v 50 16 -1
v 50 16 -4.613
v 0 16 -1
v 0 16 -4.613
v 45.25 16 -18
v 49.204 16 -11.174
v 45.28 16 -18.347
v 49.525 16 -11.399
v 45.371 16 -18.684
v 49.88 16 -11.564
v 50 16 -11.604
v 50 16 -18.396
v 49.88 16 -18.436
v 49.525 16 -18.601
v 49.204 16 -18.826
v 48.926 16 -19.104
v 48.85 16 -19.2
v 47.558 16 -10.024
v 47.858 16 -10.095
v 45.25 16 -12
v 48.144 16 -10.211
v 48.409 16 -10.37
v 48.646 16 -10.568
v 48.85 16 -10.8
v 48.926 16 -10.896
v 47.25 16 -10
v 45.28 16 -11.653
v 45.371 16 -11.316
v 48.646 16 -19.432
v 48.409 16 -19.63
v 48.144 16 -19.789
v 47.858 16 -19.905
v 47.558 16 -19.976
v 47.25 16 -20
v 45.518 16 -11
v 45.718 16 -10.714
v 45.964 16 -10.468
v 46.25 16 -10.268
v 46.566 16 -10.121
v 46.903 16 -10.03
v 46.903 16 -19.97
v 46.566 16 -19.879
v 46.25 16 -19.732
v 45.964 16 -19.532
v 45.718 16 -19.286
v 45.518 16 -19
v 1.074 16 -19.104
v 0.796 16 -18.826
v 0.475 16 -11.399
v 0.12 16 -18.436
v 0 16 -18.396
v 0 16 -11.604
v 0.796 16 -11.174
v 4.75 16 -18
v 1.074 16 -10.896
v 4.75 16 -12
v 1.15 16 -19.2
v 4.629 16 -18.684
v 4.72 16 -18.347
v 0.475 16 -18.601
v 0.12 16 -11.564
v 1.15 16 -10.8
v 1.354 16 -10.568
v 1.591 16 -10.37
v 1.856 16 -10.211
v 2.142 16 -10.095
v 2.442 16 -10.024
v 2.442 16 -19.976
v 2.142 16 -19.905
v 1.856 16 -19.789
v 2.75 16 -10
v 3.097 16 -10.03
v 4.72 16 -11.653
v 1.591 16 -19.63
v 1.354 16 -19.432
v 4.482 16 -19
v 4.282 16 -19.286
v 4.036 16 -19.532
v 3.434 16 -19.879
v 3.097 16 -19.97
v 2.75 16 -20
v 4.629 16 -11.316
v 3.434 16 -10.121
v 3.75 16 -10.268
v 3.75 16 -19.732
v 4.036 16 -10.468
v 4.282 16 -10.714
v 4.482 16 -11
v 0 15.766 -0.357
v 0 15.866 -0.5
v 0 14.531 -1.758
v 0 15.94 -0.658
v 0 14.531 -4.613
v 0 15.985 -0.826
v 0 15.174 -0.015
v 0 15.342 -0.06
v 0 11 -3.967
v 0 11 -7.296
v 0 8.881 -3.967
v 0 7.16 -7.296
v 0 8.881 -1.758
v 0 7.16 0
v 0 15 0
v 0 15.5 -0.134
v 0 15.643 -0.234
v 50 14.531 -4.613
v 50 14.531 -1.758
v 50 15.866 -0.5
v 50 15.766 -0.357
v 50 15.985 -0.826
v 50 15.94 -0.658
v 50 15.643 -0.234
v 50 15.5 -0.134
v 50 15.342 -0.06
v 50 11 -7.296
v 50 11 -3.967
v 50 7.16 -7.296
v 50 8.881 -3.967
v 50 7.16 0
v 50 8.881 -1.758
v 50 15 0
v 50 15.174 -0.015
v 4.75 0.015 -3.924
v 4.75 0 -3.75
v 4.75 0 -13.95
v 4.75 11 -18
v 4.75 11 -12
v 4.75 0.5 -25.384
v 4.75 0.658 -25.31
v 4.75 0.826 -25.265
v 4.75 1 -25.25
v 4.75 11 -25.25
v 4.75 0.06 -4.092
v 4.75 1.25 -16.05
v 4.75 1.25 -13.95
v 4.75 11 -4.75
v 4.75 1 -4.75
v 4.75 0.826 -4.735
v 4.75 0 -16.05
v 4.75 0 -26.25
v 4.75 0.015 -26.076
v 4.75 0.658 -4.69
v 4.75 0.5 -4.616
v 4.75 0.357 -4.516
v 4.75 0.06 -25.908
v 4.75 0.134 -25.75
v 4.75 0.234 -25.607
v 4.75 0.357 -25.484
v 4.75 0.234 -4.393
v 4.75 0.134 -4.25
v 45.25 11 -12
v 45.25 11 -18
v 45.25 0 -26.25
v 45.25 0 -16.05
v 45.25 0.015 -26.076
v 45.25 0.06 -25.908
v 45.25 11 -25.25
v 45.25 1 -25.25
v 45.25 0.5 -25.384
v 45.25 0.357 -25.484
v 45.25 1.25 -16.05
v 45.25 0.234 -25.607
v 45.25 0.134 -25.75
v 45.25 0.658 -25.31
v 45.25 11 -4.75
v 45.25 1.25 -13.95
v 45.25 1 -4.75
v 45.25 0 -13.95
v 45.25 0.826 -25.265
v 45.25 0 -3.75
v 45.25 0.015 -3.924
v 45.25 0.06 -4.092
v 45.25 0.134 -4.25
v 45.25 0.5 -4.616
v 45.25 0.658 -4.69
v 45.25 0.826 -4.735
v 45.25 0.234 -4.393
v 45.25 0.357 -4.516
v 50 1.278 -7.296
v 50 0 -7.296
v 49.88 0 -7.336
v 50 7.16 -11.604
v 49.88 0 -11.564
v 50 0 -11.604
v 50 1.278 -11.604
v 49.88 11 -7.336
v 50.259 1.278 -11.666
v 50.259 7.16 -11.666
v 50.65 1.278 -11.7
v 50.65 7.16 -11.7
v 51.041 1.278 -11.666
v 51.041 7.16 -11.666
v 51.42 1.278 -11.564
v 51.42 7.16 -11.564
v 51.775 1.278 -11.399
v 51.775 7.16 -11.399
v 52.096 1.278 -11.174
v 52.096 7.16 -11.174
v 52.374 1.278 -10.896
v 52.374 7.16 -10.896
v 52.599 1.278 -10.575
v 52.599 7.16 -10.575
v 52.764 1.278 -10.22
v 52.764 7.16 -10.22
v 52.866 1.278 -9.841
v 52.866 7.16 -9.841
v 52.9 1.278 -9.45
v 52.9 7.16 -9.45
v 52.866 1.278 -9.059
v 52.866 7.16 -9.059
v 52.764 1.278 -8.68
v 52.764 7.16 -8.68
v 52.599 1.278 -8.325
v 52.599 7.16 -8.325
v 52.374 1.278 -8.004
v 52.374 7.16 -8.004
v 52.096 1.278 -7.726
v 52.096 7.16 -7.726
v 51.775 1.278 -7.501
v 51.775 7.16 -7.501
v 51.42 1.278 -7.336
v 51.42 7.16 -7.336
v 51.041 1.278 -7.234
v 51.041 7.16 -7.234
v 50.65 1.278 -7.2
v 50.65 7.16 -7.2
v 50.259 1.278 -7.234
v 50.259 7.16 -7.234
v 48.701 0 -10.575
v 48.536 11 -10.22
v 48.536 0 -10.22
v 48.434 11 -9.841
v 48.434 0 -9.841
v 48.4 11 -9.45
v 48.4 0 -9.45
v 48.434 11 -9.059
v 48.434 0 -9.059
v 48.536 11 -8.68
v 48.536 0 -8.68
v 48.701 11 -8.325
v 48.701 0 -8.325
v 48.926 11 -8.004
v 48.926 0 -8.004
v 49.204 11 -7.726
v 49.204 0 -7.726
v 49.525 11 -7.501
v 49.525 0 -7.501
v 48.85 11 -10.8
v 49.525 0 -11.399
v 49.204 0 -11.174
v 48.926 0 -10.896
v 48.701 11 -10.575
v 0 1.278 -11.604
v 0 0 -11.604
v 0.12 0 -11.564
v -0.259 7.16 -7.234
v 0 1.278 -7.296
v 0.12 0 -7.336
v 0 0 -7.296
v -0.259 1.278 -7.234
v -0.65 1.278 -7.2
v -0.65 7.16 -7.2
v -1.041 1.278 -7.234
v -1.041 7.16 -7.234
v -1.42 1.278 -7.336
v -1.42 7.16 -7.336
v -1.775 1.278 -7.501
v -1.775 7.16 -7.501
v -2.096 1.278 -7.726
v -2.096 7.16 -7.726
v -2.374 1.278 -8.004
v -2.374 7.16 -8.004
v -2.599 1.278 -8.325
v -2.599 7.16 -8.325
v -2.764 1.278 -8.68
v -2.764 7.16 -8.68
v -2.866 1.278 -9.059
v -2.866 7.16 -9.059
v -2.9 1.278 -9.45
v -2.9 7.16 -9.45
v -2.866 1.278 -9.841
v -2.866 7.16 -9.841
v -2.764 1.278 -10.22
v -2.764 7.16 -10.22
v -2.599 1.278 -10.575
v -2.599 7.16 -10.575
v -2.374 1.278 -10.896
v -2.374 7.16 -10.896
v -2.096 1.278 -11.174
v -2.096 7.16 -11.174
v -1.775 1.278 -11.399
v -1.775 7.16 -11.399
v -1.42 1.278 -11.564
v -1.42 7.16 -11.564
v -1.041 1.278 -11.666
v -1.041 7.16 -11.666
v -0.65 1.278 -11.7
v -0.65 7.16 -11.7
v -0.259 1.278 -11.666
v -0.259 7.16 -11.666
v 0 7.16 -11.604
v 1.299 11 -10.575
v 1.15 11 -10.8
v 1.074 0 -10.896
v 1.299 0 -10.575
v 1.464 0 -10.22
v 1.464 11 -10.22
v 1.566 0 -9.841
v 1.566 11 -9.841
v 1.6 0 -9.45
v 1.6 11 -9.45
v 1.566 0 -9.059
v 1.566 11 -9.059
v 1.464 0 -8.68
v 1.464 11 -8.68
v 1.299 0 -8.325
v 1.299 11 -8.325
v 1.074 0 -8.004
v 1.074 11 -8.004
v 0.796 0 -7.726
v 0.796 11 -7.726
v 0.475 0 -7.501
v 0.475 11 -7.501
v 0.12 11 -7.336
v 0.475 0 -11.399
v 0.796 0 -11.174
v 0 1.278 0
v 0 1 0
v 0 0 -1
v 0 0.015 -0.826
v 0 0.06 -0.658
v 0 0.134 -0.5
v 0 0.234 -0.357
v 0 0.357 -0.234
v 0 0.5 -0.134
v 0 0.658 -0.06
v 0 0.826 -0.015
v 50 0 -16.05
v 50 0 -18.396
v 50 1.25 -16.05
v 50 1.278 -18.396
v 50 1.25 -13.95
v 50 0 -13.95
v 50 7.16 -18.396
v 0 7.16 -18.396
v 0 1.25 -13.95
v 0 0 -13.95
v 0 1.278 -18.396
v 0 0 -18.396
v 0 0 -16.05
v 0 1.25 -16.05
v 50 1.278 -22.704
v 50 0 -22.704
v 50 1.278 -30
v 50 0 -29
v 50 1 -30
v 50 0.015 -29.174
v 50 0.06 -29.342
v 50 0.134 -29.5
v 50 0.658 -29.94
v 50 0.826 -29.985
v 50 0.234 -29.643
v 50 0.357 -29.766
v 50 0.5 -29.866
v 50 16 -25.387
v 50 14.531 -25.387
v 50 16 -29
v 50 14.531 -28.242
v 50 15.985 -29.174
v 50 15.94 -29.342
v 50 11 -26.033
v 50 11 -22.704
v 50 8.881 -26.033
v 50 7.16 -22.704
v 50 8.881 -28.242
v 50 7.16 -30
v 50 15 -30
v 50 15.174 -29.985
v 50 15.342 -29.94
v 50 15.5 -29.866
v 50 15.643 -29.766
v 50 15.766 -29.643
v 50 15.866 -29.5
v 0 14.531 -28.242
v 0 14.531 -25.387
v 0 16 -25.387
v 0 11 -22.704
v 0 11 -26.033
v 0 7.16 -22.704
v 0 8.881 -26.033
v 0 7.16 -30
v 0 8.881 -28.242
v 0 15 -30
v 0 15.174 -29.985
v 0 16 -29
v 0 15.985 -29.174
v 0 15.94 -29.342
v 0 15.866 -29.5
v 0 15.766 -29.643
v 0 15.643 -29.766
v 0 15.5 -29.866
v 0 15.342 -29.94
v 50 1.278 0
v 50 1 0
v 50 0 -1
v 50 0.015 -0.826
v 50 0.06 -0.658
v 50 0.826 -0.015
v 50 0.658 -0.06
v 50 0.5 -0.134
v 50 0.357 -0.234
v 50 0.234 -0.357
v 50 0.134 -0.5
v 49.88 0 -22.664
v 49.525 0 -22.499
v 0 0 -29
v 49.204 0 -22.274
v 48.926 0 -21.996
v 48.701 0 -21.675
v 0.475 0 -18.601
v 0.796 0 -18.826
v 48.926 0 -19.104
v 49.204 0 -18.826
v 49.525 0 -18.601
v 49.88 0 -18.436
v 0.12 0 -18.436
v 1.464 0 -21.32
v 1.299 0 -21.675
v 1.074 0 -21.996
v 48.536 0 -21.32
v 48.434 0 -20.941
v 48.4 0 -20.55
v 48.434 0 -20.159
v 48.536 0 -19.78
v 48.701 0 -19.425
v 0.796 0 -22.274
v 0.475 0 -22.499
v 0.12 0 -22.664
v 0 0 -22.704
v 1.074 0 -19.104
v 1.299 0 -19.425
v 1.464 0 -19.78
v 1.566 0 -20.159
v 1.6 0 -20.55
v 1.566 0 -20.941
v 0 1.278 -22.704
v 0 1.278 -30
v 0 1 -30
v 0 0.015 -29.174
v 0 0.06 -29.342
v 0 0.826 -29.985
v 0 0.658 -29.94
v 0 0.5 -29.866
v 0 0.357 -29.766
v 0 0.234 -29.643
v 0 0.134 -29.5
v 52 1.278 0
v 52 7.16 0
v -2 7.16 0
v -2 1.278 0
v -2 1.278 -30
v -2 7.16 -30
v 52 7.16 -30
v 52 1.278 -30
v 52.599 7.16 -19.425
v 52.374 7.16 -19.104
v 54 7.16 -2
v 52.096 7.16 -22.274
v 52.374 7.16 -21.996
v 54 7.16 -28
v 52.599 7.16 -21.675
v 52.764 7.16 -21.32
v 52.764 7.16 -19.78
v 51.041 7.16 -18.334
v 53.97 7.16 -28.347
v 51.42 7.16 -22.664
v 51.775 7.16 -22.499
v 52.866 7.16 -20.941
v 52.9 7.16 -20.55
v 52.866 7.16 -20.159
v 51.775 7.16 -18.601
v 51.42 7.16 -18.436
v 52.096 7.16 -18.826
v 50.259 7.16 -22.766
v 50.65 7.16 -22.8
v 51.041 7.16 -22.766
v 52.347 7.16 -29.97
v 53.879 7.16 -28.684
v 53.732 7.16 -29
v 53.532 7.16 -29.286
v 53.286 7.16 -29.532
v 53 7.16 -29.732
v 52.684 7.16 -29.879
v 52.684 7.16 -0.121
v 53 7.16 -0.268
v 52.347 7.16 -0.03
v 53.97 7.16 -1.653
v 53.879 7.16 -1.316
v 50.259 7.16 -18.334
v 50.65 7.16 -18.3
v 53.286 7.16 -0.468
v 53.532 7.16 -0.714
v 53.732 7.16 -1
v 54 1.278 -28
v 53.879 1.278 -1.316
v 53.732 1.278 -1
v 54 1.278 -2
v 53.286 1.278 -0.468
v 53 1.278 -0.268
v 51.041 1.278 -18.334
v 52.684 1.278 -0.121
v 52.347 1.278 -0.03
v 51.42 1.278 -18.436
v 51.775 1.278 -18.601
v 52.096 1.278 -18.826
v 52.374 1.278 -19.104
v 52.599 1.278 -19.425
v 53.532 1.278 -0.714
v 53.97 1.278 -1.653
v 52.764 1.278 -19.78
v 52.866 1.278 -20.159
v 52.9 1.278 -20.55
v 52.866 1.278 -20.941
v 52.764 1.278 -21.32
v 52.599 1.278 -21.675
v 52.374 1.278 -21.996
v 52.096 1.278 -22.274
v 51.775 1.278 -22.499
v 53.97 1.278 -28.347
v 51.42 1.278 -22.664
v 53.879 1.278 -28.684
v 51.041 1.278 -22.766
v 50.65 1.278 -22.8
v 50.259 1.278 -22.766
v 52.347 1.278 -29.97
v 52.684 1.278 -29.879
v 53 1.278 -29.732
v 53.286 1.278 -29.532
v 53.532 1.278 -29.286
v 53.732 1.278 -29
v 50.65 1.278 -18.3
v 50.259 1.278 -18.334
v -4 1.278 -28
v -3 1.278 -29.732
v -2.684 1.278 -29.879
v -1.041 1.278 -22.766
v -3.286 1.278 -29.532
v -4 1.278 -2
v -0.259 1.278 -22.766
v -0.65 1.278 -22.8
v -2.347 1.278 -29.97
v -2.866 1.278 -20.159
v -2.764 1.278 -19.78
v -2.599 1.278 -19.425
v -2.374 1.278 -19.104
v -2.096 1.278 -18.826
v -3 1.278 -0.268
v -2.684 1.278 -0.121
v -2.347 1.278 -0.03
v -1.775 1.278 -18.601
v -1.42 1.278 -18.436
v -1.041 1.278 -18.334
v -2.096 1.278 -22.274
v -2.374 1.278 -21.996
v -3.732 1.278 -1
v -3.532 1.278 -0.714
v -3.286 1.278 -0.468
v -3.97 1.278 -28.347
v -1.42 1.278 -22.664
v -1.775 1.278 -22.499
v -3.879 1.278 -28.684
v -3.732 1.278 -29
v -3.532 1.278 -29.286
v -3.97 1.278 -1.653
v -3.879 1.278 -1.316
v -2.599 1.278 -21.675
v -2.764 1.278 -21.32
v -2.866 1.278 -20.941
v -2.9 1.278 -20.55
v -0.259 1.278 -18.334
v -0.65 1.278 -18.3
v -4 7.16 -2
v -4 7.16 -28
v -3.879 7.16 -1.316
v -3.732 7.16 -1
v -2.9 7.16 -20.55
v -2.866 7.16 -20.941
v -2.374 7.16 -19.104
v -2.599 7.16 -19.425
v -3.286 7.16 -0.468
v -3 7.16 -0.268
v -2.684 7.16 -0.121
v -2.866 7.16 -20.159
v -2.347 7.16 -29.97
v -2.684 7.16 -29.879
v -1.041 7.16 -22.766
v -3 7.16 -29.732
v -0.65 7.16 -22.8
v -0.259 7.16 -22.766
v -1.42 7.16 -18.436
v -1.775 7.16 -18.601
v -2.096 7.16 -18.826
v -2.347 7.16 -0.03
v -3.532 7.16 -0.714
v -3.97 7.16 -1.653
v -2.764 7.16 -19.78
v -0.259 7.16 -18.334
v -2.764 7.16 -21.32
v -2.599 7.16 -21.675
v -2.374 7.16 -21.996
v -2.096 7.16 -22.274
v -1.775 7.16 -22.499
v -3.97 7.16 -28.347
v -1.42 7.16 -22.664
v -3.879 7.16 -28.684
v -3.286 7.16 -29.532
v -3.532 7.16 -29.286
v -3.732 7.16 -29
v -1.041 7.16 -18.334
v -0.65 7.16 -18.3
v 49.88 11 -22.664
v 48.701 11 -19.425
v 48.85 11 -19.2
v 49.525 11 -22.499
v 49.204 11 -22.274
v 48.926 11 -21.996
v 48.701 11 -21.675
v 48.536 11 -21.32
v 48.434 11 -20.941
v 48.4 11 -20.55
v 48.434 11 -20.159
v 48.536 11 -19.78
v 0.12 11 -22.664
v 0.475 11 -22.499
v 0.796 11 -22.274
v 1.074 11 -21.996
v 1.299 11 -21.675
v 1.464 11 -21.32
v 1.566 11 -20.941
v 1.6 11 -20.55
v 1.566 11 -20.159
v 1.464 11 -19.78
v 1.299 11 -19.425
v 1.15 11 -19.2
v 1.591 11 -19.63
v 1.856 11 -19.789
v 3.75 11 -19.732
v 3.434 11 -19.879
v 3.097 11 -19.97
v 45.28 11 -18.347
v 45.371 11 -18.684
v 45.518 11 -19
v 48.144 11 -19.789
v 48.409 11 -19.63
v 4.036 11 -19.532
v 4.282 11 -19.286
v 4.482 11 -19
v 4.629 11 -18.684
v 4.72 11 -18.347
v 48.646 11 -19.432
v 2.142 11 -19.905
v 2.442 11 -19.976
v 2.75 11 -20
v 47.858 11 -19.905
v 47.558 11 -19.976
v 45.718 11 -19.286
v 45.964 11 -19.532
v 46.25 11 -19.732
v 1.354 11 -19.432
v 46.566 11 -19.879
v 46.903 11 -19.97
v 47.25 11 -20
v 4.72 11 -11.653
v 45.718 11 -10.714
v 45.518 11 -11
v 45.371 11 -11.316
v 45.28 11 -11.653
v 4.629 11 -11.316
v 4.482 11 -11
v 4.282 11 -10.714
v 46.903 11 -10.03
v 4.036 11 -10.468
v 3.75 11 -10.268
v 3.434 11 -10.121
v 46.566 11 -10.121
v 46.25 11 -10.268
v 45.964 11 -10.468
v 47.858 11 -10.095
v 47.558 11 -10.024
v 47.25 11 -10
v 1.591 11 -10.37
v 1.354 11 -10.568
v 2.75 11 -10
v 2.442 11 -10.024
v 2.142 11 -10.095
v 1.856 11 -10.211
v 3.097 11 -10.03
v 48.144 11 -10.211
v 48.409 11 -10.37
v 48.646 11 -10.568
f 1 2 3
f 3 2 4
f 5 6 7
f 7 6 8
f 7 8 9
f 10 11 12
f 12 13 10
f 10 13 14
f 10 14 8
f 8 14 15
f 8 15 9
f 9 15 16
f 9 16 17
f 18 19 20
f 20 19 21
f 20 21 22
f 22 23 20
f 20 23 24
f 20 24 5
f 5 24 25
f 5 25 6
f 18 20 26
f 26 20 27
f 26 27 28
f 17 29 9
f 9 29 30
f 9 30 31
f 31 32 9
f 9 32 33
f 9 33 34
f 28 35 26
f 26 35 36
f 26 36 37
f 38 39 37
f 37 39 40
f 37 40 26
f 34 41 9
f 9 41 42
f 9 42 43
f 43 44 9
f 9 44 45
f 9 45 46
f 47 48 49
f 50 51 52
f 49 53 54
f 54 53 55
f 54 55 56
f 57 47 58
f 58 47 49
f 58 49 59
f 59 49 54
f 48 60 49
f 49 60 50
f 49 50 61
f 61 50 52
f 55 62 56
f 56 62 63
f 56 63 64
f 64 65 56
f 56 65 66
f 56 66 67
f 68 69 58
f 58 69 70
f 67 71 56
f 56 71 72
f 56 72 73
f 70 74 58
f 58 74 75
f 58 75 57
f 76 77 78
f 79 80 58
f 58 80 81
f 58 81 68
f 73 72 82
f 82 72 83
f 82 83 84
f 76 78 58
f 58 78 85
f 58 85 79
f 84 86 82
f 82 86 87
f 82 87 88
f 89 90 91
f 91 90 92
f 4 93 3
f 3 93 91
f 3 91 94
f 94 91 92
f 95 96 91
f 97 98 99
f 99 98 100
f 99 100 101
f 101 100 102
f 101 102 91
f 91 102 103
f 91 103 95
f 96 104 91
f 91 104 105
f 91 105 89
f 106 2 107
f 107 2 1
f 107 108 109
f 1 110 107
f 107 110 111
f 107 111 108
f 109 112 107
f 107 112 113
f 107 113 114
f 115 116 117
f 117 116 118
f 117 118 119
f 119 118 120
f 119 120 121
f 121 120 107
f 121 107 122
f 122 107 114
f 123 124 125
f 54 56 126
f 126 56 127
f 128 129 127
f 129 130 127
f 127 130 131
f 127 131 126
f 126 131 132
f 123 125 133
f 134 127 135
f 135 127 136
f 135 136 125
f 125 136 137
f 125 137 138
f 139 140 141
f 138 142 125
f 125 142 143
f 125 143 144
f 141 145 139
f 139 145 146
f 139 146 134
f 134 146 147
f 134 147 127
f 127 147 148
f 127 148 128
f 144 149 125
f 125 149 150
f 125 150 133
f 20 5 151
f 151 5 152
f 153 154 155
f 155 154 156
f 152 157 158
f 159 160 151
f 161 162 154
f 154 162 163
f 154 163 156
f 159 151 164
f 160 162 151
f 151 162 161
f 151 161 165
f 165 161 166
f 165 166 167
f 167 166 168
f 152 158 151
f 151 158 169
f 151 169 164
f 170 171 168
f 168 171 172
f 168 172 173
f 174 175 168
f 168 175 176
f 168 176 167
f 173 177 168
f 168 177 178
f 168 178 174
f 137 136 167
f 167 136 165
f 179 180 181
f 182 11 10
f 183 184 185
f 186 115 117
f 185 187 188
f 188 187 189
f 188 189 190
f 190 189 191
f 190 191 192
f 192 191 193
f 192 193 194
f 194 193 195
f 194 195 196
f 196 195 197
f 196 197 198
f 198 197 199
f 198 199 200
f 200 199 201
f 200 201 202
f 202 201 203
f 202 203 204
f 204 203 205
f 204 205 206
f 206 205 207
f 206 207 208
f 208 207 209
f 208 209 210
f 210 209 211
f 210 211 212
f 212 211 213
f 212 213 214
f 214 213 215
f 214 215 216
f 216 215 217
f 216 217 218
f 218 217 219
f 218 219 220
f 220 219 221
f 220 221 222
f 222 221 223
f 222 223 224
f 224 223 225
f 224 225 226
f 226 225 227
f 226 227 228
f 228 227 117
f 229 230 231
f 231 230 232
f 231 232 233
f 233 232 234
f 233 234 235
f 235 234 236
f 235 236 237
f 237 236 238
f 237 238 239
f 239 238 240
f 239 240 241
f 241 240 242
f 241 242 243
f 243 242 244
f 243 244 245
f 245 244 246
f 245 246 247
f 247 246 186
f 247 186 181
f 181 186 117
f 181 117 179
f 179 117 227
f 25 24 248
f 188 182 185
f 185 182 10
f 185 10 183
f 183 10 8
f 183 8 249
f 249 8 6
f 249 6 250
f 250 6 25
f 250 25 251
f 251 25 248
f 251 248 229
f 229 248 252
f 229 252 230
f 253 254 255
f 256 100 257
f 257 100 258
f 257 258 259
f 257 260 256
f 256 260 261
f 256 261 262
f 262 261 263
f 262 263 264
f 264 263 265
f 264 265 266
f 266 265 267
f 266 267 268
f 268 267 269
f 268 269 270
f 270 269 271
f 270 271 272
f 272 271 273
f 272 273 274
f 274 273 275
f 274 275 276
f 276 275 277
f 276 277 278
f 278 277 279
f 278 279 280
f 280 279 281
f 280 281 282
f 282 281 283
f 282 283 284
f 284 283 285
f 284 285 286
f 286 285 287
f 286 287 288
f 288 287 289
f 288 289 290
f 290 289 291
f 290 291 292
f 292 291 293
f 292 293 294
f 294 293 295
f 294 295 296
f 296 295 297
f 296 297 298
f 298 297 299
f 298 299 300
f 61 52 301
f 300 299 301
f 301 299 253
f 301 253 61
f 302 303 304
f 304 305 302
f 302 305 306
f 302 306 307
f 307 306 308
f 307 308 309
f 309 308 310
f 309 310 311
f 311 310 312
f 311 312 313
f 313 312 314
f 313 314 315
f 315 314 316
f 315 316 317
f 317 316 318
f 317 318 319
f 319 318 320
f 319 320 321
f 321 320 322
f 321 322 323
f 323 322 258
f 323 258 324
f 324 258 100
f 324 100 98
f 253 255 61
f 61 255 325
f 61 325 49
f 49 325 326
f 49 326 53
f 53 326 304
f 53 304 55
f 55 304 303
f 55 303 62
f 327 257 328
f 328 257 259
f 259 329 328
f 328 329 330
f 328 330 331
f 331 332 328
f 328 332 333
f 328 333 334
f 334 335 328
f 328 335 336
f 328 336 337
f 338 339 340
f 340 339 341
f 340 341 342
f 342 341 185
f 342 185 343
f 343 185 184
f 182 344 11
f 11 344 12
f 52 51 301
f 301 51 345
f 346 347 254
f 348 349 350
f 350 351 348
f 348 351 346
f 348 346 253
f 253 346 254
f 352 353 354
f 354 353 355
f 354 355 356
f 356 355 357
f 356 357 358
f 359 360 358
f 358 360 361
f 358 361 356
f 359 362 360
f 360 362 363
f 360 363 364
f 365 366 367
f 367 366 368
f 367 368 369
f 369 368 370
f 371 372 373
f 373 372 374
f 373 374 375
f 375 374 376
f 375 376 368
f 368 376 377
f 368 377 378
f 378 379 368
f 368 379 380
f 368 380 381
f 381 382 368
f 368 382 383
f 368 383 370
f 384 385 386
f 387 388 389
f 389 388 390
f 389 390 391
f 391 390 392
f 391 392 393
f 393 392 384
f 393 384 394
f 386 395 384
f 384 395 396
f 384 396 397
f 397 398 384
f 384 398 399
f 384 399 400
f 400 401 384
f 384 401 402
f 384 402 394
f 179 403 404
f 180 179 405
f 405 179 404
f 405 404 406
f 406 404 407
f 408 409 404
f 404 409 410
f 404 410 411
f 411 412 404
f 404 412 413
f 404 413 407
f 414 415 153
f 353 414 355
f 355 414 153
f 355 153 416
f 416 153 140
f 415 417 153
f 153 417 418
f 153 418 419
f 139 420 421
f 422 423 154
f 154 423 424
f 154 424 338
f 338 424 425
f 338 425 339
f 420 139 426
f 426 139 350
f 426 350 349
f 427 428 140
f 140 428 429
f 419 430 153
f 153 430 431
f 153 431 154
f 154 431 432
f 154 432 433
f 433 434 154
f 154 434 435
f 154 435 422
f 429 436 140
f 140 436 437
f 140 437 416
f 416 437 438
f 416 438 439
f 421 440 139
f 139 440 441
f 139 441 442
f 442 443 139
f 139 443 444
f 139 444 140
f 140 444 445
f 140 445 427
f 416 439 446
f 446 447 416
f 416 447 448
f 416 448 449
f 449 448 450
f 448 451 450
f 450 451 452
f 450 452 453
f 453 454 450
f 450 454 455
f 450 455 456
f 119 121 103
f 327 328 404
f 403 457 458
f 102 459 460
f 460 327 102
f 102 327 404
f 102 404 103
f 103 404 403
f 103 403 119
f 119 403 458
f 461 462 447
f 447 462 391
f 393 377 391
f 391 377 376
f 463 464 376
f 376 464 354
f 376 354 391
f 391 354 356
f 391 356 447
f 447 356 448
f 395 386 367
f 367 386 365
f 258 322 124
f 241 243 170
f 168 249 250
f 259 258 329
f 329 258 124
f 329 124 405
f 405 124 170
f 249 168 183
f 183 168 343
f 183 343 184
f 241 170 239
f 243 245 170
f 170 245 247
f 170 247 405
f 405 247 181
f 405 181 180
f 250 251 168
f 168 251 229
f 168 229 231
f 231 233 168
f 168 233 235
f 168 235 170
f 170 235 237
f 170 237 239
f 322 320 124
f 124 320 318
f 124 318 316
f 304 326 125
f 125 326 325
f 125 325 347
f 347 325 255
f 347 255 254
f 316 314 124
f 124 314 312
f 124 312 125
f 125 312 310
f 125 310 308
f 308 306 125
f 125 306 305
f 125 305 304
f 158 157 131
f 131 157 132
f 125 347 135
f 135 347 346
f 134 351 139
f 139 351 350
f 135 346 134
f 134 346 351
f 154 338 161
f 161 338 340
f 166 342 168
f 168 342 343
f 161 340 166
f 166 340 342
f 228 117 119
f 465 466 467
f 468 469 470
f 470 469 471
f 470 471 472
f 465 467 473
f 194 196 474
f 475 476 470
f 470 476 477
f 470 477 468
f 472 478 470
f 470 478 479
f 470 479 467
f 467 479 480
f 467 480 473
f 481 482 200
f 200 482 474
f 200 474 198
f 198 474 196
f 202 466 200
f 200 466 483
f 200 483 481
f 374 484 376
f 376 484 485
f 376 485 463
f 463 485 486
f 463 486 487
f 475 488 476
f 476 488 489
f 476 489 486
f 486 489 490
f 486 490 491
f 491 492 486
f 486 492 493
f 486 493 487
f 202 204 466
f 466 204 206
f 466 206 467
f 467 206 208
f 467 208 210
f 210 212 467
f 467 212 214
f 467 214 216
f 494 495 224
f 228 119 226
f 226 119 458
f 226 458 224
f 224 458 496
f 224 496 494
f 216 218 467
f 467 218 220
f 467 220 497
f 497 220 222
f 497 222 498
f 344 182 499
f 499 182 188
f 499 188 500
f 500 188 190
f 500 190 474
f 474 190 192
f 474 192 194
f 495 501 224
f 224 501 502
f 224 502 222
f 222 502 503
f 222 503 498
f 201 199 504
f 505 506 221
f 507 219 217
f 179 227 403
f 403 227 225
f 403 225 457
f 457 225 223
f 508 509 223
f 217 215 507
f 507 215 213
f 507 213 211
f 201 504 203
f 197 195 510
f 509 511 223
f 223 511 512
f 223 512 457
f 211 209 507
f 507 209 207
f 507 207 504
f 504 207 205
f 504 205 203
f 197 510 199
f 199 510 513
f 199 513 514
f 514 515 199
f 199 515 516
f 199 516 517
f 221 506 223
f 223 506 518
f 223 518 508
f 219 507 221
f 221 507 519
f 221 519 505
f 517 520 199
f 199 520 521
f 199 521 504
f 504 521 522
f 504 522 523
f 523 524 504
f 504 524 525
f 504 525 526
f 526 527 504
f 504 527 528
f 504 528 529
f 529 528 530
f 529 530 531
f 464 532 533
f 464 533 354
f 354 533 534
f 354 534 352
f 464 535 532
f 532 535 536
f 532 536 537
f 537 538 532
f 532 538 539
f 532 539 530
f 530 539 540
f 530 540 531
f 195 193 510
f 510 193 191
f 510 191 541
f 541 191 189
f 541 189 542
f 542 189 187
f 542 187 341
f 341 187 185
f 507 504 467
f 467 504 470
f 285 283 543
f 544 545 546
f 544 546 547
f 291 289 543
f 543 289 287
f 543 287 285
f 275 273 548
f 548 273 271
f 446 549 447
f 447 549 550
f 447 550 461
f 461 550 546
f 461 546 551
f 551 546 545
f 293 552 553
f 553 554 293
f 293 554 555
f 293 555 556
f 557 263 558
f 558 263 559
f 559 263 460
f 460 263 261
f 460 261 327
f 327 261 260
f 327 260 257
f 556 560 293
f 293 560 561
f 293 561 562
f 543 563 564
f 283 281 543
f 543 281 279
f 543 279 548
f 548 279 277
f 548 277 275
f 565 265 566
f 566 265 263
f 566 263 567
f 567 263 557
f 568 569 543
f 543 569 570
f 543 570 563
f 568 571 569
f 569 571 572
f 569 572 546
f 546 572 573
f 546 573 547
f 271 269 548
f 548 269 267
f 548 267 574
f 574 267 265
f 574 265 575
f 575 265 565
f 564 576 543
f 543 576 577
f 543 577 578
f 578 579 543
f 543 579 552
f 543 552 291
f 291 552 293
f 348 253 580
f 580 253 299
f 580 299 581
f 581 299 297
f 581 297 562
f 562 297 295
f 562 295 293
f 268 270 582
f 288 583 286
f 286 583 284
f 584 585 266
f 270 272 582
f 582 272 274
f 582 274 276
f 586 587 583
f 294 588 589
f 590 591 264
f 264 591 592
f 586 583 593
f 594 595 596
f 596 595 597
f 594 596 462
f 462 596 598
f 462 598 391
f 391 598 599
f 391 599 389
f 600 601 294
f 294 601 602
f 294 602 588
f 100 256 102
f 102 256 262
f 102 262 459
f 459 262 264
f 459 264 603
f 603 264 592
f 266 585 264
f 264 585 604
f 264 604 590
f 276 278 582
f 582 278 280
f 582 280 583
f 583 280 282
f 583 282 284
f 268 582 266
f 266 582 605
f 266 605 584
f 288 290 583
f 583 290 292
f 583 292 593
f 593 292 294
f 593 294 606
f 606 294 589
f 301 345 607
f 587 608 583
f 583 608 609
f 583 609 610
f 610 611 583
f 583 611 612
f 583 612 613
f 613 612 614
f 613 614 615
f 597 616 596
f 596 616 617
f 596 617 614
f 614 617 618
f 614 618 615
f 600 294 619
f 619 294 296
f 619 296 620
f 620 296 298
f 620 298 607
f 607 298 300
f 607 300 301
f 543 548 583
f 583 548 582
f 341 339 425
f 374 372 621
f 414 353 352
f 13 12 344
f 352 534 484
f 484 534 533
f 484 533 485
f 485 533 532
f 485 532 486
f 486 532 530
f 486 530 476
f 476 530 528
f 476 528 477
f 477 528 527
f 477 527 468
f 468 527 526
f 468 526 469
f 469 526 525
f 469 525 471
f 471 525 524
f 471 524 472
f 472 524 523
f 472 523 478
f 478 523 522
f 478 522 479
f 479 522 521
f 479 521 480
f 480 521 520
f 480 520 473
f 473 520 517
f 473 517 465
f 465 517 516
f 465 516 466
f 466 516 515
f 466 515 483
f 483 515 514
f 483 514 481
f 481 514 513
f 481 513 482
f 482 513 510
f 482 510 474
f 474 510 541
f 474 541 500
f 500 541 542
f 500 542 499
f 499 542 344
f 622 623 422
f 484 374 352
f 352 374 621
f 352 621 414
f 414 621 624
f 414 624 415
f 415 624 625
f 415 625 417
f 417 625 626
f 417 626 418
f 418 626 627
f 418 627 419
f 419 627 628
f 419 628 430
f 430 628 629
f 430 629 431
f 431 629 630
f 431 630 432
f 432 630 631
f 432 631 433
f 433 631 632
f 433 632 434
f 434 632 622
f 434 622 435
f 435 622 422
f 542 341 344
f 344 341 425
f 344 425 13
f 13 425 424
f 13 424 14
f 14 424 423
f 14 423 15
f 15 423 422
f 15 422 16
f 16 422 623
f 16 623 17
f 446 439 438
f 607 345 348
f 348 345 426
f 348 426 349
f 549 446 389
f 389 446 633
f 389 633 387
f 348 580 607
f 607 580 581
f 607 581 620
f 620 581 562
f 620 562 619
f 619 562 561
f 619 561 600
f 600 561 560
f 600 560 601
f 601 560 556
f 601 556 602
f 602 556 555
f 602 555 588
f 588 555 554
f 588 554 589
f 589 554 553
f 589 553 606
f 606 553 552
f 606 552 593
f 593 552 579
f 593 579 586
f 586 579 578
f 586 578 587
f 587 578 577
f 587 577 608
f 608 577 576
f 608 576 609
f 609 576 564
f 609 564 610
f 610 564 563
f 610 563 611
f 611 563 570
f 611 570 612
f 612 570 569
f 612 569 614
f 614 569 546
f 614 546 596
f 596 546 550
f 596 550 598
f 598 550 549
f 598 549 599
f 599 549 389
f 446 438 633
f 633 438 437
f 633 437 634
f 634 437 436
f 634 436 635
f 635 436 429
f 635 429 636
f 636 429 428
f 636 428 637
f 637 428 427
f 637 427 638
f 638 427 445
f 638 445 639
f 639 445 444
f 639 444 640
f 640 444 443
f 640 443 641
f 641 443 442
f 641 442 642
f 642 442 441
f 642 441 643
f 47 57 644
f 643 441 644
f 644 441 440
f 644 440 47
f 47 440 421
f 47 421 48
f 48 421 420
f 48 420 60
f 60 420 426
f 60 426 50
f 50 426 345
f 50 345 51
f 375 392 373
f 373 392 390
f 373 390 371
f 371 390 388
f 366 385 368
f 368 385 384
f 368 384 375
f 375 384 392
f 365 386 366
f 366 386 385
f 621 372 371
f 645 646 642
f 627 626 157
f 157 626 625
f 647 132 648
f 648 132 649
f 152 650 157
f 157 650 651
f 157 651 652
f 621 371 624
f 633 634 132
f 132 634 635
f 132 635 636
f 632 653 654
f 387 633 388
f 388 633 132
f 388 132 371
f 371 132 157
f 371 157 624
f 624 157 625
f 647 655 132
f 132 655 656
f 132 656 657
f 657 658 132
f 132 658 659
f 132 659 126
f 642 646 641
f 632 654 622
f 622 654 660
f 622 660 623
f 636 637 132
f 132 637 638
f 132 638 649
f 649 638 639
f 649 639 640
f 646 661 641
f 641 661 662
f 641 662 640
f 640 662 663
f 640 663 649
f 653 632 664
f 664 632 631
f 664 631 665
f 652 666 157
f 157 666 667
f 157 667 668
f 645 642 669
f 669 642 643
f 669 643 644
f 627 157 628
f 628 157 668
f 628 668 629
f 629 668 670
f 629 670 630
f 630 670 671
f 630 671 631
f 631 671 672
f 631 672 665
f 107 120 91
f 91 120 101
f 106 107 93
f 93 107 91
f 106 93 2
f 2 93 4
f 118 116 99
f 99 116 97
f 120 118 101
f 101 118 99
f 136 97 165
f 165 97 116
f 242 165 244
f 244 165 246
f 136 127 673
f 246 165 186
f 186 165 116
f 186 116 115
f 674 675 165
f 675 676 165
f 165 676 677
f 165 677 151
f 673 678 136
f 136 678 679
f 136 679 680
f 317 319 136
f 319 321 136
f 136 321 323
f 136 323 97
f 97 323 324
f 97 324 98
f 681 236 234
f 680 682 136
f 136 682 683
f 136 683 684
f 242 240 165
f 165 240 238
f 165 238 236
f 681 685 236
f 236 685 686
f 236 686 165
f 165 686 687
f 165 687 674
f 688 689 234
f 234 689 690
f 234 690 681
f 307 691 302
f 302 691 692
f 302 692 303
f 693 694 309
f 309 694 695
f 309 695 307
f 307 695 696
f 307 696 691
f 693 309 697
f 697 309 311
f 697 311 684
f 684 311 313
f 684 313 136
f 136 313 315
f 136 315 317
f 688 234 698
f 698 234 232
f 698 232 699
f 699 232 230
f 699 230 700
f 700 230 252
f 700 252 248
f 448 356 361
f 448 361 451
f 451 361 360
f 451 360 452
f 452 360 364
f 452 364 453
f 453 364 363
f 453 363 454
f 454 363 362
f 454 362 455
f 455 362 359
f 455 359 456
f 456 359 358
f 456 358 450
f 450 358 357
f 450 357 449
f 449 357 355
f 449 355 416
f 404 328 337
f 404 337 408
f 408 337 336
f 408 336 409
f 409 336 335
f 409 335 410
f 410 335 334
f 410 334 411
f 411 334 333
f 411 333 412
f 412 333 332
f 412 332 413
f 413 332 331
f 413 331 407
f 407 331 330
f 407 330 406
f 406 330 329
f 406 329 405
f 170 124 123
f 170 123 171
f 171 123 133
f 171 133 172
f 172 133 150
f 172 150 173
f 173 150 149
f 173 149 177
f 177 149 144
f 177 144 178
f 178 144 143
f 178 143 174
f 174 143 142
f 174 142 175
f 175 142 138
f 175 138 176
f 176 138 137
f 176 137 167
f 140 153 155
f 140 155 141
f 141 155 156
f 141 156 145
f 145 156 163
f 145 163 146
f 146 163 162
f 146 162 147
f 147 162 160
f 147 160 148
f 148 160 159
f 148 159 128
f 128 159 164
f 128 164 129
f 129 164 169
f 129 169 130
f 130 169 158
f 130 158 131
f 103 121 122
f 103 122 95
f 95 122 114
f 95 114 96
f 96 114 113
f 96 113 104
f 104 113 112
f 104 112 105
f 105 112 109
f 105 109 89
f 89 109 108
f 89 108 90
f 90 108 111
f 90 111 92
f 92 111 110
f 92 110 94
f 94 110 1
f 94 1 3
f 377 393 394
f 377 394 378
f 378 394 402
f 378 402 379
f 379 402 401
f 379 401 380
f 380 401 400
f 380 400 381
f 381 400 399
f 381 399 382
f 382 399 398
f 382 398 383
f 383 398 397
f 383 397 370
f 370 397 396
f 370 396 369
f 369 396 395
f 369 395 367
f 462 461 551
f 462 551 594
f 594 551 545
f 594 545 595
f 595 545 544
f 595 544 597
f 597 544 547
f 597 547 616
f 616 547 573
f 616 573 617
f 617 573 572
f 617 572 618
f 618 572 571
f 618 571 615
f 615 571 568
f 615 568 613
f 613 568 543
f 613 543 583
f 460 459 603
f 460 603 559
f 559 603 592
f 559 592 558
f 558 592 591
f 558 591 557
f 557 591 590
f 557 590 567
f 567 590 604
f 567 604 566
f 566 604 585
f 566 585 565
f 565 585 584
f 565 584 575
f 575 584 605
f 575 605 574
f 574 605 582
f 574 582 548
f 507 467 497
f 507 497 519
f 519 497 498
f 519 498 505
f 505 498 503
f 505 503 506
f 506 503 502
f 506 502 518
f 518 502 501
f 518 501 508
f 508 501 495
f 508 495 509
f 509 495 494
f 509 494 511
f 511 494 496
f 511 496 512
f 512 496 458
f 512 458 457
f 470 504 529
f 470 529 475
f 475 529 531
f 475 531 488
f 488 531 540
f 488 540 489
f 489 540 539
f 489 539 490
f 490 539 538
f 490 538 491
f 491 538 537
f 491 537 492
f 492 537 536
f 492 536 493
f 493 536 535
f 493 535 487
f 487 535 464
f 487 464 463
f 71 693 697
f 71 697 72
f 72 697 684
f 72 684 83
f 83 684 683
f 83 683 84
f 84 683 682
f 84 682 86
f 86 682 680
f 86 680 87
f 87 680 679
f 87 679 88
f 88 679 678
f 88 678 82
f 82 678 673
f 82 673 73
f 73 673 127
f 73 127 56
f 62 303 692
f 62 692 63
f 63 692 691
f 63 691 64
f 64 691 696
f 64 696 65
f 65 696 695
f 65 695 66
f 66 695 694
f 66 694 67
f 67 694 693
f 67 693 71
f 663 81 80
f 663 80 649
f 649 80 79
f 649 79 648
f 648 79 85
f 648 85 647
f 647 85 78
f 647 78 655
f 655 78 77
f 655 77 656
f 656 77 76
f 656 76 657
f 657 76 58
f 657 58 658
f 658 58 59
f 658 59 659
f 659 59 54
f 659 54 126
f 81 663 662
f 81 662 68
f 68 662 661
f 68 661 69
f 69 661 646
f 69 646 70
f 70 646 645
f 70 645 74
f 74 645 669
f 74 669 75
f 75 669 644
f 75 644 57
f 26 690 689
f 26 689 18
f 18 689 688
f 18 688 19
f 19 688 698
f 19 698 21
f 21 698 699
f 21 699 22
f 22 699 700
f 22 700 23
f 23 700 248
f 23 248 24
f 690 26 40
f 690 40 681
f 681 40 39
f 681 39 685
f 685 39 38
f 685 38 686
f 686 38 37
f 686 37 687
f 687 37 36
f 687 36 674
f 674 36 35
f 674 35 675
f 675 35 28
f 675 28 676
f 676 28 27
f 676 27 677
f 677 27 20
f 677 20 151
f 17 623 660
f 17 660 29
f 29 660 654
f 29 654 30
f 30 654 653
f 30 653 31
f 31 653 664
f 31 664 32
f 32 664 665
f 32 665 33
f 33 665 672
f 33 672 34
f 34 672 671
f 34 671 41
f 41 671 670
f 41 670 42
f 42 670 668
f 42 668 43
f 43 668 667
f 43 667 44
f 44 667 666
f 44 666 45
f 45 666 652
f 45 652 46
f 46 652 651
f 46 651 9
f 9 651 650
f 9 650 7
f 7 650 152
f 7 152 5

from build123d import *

# Parameters (mm, degrees)
SKETCH1_W           = 50
SKETCH1_H           = 30
BOSS_EXTRUDE1_DEPTH = 16
SKETCH2_W           = 40.5
SKETCH2_H           = 20.5
CUT_EXTRUDE1_DEPTH  = 61.464865831
SKETCH3_W           = 5.361453717
SKETCH3_H           = 2.1
SKETCH3_W_2         = 6
CUT_EXTRUDE2_DEPTH  = 1.25
SKETCH5_W           = 30
SKETCH5_H           = 5.881320982
BOSS_EXTRUDE2_DEPTH = 4
SKETCH4_R           = 2.25
CUT_EXTRUDE3_DEPTH  = 64.812224534
CUT_EXTRUDE4_DEPTH  = 64.812224534
FILLET1_R           = 1
FILLET2_R           = 2
FILLET3_R           = 2


with BuildPart() as part:
    # Sketch1 → Boss-Extrude1 (new body)
    with BuildSketch(Plane(origin=(0, 0, 0), x_dir=(1, 0, 0), z_dir=(0, 1, 0))):
        with Locations((25, 15)):
            Rectangle(SKETCH1_W, SKETCH1_H)
    extrude(amount=BOSS_EXTRUDE1_DEPTH)

    # Sketch2 → Cut-Extrude1 (cut, through all)
    with BuildSketch(Plane(origin=(0, 16, 0), x_dir=(1, 0, 0), z_dir=(0, 1, 0))):
        with Locations((25, 15)):
            Rectangle(SKETCH2_W, SKETCH2_H)
    extrude(amount=-CUT_EXTRUDE1_DEPTH, mode=Mode.SUBTRACT)

    # Sketch3 → Cut-Extrude2 (cut)
    with BuildSketch(Plane.XZ):
        with Locations((2.069273142, -15)):
            Rectangle(SKETCH3_W, SKETCH3_H)
        with Locations((47.362234217, -15)):
            Rectangle(SKETCH3_W_2, SKETCH3_H)
    extrude(amount=-CUT_EXTRUDE2_DEPTH, mode=Mode.SUBTRACT)

    # Sketch5 → Boss-Extrude2 (add)
    with BuildSketch(Plane(origin=(50, 0, 0), x_dir=(0, 0, -1), z_dir=(1, 0, 0))):
        with Locations((15, 4.219150797)):
            Rectangle(SKETCH5_W, SKETCH5_H)
    boss_extrude2 = extrude(amount=BOSS_EXTRUDE2_DEPTH)

    # Mirror1: Boss-Extrude2 across plane
    add(boss_extrude2.mirror(Plane(origin=(25, 0, 0), x_dir=(0, 0, 1), z_dir=(1, 0, 0))))

    # Sketch4 → Cut-Extrude3 (cut, through all)
    with BuildSketch(Plane.XZ):
        with Locations(Location((50.65, -20.55, 0), (0, 0, 253.208552885))):
            Circle(SKETCH4_R)
        with Locations(Location((-0.65, -20.55, 0), (0, 0, 286.791447115))):
            Circle(SKETCH4_R)
        with Locations(Location((50.65, -9.45, 0), (0, 0, 253.208552885))):
            Circle(SKETCH4_R)
        with Locations(Location((-0.65, -9.45, 0), (0, 0, 286.791447115))):
            Circle(SKETCH4_R)
    extrude(amount=-CUT_EXTRUDE3_DEPTH, mode=Mode.SUBTRACT)

    # Sketch7 → Cut-Extrude4 (cut, through all)
    with BuildSketch(Plane(origin=(50, 0, 0), x_dir=(0, 0, -1), z_dir=(1, 0, 0))):
        Polygon((26.03322218, 11), (20, 11), (20, 19.253471802), (25.386984847, 19.253471802), (25.386984847, 14.530939497), (28.241616166, 14.530939497), (28.241616166, 11), (28.241616166, 8.880902809), (26.03322218, 8.880902809), align=None)
    cut_extrude4 = extrude(amount=-CUT_EXTRUDE4_DEPTH, mode=Mode.SUBTRACT)

    # Mirror2: Cut-Extrude4 across plane
    add(cut_extrude4.mirror(Plane(origin=(0, 0, -15), x_dir=(1, 0, 0), z_dir=(0, 0, -1))), mode=Mode.SUBTRACT)

    # Fillet1
    fillet1_edges = [part.edges().sort_by_distance(p)[0] for p in [
        (25, 0, -30),
        (25, 0, 0),
        (25, 0, -4.75),
        (25, 0, -25.25),
        (25, 16, 0),
        (25, 16, -30),
    ]]
    fillet(fillet1_edges, radius=FILLET1_R)

    # Fillet2
    fillet2_edges = [part.edges().sort_by_distance(p)[0] for p in [
        (-4, 4.219150797, -30),
        (-4, 4.219150797, 0),
        (54, 4.219150797, 0),
        (54, 4.219150797, -30),
    ]]
    fillet(fillet2_edges, radius=FILLET2_R)

    # Fillet3
    fillet3_edges = [part.edges().sort_by_distance(p)[0] for p in [
        (1.531742423, 13.5, -10),
        (4.75, 13.5, -10),
        (1.531742423, 13.5, -20),
        (4.75, 13.5, -20),
        (45.25, 13.5, -10),
        (48.468257577, 13.5, -10),
        (45.25, 13.5, -20),
        (48.468257577, 13.5, -20),
    ]]
    fillet(fillet3_edges, radius=FILLET3_R - 0.0001)  # a hair under: the kernel refuses the full size


solid = part.part
